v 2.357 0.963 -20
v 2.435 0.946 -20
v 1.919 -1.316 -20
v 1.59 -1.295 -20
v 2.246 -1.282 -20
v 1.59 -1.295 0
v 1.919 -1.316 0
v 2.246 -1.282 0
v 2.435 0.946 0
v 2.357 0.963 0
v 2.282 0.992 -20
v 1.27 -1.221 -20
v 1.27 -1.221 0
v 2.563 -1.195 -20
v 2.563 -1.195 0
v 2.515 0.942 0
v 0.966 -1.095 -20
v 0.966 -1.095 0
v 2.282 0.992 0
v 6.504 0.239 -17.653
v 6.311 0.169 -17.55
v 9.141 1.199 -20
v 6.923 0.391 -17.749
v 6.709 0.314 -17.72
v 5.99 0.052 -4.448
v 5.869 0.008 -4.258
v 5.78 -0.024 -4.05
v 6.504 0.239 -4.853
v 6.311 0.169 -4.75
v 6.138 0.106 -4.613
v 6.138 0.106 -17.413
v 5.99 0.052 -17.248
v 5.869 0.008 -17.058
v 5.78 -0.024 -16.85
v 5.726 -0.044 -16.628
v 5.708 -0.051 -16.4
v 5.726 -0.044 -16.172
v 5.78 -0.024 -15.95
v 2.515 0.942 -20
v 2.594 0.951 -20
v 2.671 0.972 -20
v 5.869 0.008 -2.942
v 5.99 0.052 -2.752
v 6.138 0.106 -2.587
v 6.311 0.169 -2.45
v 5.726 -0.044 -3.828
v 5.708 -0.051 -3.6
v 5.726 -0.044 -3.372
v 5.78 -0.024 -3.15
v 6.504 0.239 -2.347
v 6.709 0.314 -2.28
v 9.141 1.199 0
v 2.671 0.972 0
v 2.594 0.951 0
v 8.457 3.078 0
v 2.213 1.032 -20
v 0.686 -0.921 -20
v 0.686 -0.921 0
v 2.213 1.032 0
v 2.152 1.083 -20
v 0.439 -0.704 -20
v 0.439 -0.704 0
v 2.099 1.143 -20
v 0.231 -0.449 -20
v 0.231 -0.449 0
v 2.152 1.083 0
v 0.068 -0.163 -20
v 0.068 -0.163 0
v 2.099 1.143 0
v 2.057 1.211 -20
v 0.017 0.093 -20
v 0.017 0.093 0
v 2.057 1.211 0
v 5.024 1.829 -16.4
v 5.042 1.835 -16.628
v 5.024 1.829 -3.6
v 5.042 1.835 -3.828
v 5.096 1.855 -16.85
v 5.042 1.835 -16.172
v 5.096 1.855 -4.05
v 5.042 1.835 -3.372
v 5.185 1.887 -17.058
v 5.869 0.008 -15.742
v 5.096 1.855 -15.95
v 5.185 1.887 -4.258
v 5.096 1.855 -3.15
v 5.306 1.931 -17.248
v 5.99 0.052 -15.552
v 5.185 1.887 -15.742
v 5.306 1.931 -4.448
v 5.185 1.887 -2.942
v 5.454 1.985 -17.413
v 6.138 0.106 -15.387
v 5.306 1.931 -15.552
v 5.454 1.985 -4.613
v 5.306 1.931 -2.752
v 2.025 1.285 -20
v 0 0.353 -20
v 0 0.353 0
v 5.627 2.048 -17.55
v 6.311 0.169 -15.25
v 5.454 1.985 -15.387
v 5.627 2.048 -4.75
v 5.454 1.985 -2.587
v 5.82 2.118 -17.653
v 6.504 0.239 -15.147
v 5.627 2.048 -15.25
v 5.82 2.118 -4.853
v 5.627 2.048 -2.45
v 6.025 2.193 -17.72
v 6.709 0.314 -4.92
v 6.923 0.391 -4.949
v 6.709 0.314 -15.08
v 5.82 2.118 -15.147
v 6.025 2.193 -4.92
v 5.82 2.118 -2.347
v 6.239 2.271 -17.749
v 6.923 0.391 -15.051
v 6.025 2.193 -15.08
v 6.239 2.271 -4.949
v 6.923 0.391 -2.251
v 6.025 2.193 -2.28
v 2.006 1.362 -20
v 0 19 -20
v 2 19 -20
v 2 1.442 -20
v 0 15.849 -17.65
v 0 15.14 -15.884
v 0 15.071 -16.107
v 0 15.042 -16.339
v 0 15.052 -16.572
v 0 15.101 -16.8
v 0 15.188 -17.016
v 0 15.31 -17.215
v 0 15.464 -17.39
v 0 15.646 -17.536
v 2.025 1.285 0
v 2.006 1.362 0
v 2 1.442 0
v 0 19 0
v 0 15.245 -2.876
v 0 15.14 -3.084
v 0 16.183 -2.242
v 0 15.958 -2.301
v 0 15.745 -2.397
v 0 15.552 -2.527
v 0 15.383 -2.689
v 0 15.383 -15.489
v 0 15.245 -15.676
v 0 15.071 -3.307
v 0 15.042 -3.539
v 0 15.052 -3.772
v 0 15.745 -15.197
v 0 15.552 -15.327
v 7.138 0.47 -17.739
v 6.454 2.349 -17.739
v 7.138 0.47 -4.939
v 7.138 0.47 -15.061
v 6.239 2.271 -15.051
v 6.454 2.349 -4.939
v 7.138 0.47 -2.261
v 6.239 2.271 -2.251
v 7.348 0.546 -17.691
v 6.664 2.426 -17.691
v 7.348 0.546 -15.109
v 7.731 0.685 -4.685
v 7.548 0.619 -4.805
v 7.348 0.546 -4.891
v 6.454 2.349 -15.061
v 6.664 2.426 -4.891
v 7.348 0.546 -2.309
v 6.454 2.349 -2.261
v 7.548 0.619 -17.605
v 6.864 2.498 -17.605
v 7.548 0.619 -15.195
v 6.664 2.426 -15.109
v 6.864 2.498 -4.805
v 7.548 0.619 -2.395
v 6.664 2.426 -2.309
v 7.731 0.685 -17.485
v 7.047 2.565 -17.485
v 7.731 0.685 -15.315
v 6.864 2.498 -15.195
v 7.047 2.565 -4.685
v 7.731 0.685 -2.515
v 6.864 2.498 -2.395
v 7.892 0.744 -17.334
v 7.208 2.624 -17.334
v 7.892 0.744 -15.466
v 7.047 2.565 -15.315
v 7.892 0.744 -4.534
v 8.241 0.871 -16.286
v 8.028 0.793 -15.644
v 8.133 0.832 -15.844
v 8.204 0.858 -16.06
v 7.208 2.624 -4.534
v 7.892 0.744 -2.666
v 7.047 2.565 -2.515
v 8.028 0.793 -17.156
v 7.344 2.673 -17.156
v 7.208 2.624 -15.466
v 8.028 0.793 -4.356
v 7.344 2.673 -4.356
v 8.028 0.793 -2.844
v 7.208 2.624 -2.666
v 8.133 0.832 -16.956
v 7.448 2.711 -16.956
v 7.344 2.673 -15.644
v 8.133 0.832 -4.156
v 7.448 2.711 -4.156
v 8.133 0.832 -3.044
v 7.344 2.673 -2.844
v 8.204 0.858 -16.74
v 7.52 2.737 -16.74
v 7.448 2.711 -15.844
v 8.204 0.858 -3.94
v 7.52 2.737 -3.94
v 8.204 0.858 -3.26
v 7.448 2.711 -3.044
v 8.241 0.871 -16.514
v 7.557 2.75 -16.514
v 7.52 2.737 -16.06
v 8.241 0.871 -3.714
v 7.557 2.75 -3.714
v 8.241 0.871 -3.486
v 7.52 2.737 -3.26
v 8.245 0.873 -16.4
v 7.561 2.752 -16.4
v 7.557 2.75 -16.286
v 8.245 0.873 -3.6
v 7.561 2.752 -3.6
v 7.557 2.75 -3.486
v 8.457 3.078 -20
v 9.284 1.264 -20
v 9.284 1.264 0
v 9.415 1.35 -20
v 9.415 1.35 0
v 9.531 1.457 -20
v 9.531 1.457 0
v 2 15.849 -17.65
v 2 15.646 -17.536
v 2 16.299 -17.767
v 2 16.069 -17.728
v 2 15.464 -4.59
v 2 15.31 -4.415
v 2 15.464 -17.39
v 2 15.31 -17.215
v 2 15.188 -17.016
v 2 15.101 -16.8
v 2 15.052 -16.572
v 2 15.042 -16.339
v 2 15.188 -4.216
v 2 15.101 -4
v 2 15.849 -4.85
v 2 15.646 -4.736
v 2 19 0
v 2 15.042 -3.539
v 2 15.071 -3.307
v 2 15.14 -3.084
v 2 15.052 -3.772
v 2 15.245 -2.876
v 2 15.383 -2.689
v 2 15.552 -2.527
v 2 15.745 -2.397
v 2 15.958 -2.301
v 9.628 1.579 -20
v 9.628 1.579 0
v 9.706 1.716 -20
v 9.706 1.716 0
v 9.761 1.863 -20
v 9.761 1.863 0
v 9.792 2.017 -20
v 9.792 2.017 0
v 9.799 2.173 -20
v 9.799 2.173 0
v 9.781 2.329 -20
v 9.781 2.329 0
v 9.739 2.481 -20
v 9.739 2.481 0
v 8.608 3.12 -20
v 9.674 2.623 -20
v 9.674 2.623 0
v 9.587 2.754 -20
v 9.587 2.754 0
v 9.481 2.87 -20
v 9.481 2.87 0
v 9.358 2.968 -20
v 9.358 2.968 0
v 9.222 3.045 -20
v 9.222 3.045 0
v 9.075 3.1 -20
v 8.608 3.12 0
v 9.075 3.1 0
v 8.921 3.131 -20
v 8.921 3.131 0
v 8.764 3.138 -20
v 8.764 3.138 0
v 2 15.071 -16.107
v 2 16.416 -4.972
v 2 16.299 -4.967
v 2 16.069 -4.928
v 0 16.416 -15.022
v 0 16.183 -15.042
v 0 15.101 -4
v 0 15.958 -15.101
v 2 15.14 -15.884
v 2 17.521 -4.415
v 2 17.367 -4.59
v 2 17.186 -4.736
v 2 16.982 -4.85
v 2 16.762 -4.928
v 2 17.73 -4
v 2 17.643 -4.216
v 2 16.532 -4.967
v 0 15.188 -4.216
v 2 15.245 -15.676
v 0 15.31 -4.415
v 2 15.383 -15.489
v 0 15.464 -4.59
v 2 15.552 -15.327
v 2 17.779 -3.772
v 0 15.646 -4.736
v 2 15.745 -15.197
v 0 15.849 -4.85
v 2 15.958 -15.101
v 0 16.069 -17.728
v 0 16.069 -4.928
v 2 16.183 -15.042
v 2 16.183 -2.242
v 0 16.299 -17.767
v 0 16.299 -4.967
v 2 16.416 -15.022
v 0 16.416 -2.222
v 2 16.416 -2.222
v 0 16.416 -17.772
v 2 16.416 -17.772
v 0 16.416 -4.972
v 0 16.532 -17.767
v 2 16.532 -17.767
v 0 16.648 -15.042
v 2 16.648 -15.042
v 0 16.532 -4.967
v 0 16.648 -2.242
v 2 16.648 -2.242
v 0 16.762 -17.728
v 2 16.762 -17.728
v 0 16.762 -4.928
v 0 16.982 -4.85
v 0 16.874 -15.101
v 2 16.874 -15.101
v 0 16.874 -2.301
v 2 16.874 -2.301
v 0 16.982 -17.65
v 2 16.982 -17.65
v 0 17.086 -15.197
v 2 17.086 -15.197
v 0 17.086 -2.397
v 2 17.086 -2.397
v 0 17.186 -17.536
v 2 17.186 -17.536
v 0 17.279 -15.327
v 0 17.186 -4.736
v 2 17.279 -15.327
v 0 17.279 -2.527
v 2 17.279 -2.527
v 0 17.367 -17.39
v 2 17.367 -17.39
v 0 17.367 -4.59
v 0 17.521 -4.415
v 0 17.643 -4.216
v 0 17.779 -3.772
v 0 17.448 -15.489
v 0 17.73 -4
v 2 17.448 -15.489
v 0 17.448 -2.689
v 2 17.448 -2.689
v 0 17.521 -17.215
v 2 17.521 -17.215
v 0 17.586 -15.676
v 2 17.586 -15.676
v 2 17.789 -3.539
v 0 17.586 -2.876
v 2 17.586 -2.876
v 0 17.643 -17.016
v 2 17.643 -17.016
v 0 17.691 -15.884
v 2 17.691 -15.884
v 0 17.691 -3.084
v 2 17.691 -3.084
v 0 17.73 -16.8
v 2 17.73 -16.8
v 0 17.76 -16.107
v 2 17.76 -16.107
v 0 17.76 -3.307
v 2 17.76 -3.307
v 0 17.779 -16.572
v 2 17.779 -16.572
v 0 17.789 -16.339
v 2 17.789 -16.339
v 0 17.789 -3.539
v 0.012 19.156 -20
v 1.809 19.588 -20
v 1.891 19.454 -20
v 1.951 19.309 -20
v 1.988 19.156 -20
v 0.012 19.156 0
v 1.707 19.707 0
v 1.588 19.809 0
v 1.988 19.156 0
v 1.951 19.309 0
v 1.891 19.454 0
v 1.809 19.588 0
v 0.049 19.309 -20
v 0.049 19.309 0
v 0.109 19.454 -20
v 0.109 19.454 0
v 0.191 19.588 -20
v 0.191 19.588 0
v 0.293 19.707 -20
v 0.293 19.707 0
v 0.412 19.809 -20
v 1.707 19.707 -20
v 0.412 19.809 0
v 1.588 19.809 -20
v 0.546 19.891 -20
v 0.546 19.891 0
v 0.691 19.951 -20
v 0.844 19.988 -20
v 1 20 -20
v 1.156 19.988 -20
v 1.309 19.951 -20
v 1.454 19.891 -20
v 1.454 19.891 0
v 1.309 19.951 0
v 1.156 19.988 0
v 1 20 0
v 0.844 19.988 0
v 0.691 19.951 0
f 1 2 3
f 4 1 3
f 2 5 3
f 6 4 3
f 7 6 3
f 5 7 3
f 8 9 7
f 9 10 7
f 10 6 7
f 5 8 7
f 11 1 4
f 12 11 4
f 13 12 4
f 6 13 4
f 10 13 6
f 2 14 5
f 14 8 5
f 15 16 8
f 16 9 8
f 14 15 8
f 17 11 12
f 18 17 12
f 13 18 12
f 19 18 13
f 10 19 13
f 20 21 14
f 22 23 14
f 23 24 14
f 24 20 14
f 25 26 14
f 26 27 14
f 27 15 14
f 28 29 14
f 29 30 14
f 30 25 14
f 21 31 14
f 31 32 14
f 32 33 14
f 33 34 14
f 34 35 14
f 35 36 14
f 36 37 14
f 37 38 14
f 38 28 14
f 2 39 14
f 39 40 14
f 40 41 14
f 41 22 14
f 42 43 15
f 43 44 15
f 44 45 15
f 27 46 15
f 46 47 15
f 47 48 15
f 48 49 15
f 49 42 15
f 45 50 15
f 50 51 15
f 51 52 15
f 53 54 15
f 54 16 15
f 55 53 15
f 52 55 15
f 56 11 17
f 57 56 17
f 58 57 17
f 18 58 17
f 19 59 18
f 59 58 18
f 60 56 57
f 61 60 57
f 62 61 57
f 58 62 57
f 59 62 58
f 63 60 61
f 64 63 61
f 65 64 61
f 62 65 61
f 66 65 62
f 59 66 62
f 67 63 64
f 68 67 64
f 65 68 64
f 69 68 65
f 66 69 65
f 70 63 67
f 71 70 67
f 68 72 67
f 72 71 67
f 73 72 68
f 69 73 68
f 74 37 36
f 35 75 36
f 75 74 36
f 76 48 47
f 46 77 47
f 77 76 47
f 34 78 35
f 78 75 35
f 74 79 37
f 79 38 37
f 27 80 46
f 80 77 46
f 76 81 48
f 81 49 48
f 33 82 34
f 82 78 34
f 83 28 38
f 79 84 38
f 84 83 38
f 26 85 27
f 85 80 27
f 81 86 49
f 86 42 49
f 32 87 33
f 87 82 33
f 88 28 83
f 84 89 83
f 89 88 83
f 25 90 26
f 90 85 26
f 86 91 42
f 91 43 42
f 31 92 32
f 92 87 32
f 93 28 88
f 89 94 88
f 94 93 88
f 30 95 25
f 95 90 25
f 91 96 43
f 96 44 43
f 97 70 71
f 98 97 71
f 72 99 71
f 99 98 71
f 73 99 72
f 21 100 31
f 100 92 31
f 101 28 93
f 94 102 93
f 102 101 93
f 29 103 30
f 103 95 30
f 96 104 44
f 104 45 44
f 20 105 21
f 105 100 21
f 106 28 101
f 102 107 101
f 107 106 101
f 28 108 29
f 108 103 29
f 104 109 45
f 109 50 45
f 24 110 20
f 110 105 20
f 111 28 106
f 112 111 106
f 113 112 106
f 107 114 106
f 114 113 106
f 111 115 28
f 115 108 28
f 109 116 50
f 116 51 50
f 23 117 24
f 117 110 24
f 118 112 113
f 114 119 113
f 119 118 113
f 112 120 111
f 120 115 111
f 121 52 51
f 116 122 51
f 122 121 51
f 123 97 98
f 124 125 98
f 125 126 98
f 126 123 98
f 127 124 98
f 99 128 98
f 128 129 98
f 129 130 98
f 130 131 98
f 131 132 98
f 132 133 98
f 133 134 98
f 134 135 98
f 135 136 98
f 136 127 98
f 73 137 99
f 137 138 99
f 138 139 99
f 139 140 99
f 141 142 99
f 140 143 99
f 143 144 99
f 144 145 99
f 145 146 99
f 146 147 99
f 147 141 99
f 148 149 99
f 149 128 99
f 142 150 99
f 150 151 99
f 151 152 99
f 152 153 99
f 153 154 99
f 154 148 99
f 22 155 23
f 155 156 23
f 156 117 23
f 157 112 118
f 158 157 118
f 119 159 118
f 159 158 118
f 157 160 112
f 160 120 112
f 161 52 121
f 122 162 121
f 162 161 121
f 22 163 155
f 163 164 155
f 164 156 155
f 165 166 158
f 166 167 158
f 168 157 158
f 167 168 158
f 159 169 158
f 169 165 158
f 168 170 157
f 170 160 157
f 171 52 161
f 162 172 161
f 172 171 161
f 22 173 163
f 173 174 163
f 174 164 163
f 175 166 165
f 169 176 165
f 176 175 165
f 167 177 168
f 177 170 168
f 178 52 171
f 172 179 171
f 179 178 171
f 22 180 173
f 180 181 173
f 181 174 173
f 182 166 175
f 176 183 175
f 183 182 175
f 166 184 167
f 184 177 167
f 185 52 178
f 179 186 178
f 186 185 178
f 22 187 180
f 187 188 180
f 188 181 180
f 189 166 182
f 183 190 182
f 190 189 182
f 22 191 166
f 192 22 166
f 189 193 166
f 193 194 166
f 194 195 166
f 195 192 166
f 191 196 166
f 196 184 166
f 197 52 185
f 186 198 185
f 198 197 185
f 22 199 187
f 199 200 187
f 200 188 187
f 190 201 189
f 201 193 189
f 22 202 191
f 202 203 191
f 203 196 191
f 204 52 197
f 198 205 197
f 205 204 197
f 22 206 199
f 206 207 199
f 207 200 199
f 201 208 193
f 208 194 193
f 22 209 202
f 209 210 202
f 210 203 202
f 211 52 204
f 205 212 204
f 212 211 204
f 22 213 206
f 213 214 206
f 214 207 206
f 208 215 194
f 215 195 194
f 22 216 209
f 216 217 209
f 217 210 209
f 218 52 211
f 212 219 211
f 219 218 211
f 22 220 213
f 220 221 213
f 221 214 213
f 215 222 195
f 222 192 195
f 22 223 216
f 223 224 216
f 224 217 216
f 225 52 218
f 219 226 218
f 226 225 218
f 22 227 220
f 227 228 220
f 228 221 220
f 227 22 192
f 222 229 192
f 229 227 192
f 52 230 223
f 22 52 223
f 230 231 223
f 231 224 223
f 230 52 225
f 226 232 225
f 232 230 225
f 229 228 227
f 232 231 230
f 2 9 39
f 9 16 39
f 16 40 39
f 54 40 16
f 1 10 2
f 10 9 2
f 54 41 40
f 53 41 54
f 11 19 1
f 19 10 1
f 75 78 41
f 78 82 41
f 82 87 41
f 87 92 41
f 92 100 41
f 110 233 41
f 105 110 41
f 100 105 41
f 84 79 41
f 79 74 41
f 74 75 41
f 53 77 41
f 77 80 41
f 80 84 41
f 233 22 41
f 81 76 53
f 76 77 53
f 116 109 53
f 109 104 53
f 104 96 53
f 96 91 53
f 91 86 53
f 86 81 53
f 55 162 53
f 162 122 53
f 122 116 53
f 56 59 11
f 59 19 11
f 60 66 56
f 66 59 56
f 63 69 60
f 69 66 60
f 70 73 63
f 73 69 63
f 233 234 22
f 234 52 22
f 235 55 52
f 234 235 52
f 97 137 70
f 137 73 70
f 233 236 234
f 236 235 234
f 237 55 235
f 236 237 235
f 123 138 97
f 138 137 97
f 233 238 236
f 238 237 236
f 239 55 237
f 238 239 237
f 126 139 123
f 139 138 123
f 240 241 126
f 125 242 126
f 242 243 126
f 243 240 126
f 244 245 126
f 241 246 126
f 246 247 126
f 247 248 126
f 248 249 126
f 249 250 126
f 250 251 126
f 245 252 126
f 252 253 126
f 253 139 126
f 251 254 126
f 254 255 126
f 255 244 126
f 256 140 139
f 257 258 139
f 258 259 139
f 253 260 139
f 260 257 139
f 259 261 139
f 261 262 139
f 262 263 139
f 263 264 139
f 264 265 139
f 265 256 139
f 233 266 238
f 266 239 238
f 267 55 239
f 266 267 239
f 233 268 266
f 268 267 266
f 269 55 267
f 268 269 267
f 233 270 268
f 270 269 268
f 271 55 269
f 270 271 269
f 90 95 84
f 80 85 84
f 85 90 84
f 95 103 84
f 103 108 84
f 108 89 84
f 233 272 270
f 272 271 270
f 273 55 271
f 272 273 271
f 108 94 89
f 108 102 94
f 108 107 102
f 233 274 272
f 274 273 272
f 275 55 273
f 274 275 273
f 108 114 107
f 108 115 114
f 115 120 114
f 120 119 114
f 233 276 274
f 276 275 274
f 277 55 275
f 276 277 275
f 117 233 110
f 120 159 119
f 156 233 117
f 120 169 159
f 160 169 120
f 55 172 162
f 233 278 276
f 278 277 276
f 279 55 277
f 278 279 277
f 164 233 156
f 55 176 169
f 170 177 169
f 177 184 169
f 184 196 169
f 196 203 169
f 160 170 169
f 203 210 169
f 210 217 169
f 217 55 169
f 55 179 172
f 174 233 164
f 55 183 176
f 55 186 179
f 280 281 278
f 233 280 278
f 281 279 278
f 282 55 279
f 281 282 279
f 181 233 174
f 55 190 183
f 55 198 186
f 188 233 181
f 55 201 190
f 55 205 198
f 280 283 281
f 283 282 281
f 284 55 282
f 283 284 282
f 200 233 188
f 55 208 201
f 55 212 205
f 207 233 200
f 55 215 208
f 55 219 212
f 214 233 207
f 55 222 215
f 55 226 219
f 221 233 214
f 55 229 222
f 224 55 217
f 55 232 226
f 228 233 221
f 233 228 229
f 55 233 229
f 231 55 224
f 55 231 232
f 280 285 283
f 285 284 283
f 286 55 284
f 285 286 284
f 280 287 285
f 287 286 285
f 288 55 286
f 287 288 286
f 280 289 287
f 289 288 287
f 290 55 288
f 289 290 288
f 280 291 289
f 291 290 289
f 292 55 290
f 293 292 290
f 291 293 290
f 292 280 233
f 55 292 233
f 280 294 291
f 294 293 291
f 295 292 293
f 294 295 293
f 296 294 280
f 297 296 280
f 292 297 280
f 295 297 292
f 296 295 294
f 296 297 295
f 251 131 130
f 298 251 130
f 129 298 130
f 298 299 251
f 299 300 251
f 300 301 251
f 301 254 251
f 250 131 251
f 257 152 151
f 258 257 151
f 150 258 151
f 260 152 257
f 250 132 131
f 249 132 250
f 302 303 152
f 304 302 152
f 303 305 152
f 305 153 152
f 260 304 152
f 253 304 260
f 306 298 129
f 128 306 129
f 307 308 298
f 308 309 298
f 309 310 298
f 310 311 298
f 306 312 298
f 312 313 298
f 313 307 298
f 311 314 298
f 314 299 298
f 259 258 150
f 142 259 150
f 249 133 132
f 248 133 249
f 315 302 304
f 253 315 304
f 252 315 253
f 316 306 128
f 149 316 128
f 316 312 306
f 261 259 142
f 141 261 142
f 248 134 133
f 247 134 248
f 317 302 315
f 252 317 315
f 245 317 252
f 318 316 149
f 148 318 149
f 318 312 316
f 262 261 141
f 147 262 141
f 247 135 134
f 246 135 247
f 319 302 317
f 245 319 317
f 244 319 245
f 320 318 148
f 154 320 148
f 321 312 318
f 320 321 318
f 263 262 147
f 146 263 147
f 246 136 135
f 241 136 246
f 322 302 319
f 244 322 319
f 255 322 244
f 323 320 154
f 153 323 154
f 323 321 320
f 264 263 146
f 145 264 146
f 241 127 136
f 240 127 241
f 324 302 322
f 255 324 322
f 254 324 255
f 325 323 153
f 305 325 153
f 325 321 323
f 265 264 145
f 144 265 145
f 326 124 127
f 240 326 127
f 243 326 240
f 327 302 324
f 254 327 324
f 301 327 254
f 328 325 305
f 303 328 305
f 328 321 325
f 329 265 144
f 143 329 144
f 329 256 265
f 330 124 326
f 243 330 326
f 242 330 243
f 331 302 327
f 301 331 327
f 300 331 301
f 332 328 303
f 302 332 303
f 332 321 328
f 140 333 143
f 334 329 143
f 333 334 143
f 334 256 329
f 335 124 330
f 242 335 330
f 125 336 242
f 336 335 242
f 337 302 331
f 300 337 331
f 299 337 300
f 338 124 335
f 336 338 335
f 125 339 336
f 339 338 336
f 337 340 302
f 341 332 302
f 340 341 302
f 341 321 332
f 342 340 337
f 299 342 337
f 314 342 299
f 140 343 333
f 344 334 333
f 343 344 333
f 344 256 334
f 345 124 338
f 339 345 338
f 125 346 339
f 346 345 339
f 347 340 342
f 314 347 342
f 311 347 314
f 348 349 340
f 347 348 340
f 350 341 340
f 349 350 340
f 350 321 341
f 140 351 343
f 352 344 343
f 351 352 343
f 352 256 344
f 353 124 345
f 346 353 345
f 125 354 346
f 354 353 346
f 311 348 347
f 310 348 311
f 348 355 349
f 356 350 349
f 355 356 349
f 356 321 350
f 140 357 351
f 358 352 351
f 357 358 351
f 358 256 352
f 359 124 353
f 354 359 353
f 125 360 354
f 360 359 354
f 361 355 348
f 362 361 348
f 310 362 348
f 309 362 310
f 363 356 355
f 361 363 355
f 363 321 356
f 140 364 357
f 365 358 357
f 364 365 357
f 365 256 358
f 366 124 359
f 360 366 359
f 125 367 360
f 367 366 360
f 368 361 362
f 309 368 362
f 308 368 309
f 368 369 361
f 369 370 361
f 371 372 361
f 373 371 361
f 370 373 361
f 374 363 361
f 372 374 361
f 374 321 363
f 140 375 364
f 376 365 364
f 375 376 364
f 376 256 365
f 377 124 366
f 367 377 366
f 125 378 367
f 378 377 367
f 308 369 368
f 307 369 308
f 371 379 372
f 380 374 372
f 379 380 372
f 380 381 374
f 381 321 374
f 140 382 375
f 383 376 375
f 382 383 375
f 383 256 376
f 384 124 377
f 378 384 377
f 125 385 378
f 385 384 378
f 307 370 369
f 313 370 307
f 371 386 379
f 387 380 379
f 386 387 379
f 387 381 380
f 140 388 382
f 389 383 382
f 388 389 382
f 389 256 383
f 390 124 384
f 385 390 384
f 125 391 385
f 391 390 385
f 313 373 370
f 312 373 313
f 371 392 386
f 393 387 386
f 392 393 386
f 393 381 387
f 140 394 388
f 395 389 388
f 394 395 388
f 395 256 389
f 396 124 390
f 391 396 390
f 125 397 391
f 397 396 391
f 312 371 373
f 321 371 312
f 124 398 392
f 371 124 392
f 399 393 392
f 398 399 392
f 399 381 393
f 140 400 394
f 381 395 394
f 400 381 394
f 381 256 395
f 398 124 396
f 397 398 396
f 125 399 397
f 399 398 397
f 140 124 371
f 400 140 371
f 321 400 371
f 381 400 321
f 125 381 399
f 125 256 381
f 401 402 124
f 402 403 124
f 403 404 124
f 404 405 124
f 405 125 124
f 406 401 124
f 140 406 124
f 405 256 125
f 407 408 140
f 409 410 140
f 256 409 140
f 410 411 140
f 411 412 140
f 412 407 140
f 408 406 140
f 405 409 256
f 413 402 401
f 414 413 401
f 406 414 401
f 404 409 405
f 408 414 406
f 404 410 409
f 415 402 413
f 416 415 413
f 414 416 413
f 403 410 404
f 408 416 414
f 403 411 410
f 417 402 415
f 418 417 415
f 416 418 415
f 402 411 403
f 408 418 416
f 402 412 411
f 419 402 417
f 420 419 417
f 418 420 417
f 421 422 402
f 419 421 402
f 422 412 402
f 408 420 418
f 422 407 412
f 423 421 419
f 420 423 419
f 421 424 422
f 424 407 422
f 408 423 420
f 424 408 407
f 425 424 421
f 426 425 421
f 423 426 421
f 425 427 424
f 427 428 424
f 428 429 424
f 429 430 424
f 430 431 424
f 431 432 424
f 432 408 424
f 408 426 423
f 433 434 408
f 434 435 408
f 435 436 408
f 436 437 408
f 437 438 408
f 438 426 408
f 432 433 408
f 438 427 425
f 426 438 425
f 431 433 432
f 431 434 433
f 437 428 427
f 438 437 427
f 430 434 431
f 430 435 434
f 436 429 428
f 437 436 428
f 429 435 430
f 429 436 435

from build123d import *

# Parameters (mm, degrees)
SKETCH3_W           = 20
SKETCH3_H           = 10
SKETCH3_R           = 1.35
BOSS_EXTRUDE1_DEPTH = 2
SKETCH2_W           = 20
SKETCH2_H           = 20
SKETCH2_R           = 1.375
BOSS_EXTRUDE2_DEPTH = 2
FILLET1_R           = 2
FILLET2_R           = 0.5
FILLET3_R           = 1
FILLET4_R           = 1


# Some blends are built 0.0001 mm under size
with BuildPart() as part:
    # Sketch3 → Boss-Extrude1 (new body)
    with BuildSketch(Plane(origin=(0, 0, 0), x_dir=(0, 0, -1), z_dir=(0.34202014332566616, -0.9396926207859094, 0))):
        with Locations((10, 5)):
            Rectangle(SKETCH3_W, SKETCH3_H)
        with Locations(Location((3.6, 6.69633816, 0), (0, 0, 90))):
            Circle(SKETCH3_R, mode=Mode.SUBTRACT)
        with Locations(Location((16.4, 6.69633816, 0), (0, 0, 90))):
            Circle(SKETCH3_R, mode=Mode.SUBTRACT)
    extrude(amount=BOSS_EXTRUDE1_DEPTH)

    # Sketch2 → Boss-Extrude2 (add)
    with BuildSketch(Plane(origin=(0, 0, 0), x_dir=(0, 0, -1), z_dir=(1, 0, 0))):
        with Locations((10, 10)):
            Rectangle(SKETCH2_W, SKETCH2_H)
        with Locations((3.597100601, 16.415608196)):
            Circle(SKETCH2_R, mode=Mode.SUBTRACT)
        with Locations((16.397100601, 16.415608196)):
            Circle(SKETCH2_R, mode=Mode.SUBTRACT)
    extrude(amount=BOSS_EXTRUDE2_DEPTH)

    # Fillet1
    # the kernel refuses this fillet: 2 mm, written as the material it takes off along each edge
    with BuildSketch(Plane(origin=(0.684040287, -1.879385242, -25), x_dir=(0.9396926207859093, 0.34202014332566616, 0), z_dir=(0, 0, 1))) as fillet1_piece_1:
        with BuildLine():
            CenterArc((FILLET1_R, FILLET1_R), FILLET1_R, 180, 90)
            Line((0, FILLET1_R), (0, 0))
            Line((0, 0), (FILLET1_R, 0))
        make_face()
    extrude(amount=30, mode=Mode.SUBTRACT)
    with BuildSketch(Plane(origin=(0, 0, -20.881634904), x_dir=(0.34202014332566616, -0.9396926207859093, 0), z_dir=(0, 0, 1))) as fillet1_piece_2:
        with BuildLine():
            CenterArc((FILLET1_R * 0.176326980708, FILLET1_R), FILLET1_R, 250, 20)
            Line((-FILLET1_R * 0.165693162617, FILLET1_R * 0.0603073792141), (0, 0))
            Line((0, 0), (FILLET1_R * 0.176326980708, 0))
        make_face()
    extrude(amount=21.763269807, mode=Mode.SUBTRACT)

    # Fillet2
    fillet2_edges = [part.edges().sort_by_distance(p)[0] for p in [
        (2, 0.727940469, -10),
    ]]
    fillet(fillet2_edges, radius=FILLET2_R)

    # Fillet3
    fillet3_edges = [part.edges().sort_by_distance(p)[0] for p in [
        (2, 20, -10),
        (0, 20, -10),
    ]]
    fillet(fillet3_edges, radius=FILLET3_R - 0.0001)  # a hair under: the kernel refuses the full size

    # Fillet4
    fillet4_edges = [part.edges().sort_by_distance(p)[0] for p in [
        (10.080966495, 1.540816192, -10),
        (9.396926208, 3.420201433, -10),
    ]]
    fillet(fillet4_edges, radius=FILLET4_R - 0.0001)  # a hair under: the kernel refuses the full size


solid = part.part
